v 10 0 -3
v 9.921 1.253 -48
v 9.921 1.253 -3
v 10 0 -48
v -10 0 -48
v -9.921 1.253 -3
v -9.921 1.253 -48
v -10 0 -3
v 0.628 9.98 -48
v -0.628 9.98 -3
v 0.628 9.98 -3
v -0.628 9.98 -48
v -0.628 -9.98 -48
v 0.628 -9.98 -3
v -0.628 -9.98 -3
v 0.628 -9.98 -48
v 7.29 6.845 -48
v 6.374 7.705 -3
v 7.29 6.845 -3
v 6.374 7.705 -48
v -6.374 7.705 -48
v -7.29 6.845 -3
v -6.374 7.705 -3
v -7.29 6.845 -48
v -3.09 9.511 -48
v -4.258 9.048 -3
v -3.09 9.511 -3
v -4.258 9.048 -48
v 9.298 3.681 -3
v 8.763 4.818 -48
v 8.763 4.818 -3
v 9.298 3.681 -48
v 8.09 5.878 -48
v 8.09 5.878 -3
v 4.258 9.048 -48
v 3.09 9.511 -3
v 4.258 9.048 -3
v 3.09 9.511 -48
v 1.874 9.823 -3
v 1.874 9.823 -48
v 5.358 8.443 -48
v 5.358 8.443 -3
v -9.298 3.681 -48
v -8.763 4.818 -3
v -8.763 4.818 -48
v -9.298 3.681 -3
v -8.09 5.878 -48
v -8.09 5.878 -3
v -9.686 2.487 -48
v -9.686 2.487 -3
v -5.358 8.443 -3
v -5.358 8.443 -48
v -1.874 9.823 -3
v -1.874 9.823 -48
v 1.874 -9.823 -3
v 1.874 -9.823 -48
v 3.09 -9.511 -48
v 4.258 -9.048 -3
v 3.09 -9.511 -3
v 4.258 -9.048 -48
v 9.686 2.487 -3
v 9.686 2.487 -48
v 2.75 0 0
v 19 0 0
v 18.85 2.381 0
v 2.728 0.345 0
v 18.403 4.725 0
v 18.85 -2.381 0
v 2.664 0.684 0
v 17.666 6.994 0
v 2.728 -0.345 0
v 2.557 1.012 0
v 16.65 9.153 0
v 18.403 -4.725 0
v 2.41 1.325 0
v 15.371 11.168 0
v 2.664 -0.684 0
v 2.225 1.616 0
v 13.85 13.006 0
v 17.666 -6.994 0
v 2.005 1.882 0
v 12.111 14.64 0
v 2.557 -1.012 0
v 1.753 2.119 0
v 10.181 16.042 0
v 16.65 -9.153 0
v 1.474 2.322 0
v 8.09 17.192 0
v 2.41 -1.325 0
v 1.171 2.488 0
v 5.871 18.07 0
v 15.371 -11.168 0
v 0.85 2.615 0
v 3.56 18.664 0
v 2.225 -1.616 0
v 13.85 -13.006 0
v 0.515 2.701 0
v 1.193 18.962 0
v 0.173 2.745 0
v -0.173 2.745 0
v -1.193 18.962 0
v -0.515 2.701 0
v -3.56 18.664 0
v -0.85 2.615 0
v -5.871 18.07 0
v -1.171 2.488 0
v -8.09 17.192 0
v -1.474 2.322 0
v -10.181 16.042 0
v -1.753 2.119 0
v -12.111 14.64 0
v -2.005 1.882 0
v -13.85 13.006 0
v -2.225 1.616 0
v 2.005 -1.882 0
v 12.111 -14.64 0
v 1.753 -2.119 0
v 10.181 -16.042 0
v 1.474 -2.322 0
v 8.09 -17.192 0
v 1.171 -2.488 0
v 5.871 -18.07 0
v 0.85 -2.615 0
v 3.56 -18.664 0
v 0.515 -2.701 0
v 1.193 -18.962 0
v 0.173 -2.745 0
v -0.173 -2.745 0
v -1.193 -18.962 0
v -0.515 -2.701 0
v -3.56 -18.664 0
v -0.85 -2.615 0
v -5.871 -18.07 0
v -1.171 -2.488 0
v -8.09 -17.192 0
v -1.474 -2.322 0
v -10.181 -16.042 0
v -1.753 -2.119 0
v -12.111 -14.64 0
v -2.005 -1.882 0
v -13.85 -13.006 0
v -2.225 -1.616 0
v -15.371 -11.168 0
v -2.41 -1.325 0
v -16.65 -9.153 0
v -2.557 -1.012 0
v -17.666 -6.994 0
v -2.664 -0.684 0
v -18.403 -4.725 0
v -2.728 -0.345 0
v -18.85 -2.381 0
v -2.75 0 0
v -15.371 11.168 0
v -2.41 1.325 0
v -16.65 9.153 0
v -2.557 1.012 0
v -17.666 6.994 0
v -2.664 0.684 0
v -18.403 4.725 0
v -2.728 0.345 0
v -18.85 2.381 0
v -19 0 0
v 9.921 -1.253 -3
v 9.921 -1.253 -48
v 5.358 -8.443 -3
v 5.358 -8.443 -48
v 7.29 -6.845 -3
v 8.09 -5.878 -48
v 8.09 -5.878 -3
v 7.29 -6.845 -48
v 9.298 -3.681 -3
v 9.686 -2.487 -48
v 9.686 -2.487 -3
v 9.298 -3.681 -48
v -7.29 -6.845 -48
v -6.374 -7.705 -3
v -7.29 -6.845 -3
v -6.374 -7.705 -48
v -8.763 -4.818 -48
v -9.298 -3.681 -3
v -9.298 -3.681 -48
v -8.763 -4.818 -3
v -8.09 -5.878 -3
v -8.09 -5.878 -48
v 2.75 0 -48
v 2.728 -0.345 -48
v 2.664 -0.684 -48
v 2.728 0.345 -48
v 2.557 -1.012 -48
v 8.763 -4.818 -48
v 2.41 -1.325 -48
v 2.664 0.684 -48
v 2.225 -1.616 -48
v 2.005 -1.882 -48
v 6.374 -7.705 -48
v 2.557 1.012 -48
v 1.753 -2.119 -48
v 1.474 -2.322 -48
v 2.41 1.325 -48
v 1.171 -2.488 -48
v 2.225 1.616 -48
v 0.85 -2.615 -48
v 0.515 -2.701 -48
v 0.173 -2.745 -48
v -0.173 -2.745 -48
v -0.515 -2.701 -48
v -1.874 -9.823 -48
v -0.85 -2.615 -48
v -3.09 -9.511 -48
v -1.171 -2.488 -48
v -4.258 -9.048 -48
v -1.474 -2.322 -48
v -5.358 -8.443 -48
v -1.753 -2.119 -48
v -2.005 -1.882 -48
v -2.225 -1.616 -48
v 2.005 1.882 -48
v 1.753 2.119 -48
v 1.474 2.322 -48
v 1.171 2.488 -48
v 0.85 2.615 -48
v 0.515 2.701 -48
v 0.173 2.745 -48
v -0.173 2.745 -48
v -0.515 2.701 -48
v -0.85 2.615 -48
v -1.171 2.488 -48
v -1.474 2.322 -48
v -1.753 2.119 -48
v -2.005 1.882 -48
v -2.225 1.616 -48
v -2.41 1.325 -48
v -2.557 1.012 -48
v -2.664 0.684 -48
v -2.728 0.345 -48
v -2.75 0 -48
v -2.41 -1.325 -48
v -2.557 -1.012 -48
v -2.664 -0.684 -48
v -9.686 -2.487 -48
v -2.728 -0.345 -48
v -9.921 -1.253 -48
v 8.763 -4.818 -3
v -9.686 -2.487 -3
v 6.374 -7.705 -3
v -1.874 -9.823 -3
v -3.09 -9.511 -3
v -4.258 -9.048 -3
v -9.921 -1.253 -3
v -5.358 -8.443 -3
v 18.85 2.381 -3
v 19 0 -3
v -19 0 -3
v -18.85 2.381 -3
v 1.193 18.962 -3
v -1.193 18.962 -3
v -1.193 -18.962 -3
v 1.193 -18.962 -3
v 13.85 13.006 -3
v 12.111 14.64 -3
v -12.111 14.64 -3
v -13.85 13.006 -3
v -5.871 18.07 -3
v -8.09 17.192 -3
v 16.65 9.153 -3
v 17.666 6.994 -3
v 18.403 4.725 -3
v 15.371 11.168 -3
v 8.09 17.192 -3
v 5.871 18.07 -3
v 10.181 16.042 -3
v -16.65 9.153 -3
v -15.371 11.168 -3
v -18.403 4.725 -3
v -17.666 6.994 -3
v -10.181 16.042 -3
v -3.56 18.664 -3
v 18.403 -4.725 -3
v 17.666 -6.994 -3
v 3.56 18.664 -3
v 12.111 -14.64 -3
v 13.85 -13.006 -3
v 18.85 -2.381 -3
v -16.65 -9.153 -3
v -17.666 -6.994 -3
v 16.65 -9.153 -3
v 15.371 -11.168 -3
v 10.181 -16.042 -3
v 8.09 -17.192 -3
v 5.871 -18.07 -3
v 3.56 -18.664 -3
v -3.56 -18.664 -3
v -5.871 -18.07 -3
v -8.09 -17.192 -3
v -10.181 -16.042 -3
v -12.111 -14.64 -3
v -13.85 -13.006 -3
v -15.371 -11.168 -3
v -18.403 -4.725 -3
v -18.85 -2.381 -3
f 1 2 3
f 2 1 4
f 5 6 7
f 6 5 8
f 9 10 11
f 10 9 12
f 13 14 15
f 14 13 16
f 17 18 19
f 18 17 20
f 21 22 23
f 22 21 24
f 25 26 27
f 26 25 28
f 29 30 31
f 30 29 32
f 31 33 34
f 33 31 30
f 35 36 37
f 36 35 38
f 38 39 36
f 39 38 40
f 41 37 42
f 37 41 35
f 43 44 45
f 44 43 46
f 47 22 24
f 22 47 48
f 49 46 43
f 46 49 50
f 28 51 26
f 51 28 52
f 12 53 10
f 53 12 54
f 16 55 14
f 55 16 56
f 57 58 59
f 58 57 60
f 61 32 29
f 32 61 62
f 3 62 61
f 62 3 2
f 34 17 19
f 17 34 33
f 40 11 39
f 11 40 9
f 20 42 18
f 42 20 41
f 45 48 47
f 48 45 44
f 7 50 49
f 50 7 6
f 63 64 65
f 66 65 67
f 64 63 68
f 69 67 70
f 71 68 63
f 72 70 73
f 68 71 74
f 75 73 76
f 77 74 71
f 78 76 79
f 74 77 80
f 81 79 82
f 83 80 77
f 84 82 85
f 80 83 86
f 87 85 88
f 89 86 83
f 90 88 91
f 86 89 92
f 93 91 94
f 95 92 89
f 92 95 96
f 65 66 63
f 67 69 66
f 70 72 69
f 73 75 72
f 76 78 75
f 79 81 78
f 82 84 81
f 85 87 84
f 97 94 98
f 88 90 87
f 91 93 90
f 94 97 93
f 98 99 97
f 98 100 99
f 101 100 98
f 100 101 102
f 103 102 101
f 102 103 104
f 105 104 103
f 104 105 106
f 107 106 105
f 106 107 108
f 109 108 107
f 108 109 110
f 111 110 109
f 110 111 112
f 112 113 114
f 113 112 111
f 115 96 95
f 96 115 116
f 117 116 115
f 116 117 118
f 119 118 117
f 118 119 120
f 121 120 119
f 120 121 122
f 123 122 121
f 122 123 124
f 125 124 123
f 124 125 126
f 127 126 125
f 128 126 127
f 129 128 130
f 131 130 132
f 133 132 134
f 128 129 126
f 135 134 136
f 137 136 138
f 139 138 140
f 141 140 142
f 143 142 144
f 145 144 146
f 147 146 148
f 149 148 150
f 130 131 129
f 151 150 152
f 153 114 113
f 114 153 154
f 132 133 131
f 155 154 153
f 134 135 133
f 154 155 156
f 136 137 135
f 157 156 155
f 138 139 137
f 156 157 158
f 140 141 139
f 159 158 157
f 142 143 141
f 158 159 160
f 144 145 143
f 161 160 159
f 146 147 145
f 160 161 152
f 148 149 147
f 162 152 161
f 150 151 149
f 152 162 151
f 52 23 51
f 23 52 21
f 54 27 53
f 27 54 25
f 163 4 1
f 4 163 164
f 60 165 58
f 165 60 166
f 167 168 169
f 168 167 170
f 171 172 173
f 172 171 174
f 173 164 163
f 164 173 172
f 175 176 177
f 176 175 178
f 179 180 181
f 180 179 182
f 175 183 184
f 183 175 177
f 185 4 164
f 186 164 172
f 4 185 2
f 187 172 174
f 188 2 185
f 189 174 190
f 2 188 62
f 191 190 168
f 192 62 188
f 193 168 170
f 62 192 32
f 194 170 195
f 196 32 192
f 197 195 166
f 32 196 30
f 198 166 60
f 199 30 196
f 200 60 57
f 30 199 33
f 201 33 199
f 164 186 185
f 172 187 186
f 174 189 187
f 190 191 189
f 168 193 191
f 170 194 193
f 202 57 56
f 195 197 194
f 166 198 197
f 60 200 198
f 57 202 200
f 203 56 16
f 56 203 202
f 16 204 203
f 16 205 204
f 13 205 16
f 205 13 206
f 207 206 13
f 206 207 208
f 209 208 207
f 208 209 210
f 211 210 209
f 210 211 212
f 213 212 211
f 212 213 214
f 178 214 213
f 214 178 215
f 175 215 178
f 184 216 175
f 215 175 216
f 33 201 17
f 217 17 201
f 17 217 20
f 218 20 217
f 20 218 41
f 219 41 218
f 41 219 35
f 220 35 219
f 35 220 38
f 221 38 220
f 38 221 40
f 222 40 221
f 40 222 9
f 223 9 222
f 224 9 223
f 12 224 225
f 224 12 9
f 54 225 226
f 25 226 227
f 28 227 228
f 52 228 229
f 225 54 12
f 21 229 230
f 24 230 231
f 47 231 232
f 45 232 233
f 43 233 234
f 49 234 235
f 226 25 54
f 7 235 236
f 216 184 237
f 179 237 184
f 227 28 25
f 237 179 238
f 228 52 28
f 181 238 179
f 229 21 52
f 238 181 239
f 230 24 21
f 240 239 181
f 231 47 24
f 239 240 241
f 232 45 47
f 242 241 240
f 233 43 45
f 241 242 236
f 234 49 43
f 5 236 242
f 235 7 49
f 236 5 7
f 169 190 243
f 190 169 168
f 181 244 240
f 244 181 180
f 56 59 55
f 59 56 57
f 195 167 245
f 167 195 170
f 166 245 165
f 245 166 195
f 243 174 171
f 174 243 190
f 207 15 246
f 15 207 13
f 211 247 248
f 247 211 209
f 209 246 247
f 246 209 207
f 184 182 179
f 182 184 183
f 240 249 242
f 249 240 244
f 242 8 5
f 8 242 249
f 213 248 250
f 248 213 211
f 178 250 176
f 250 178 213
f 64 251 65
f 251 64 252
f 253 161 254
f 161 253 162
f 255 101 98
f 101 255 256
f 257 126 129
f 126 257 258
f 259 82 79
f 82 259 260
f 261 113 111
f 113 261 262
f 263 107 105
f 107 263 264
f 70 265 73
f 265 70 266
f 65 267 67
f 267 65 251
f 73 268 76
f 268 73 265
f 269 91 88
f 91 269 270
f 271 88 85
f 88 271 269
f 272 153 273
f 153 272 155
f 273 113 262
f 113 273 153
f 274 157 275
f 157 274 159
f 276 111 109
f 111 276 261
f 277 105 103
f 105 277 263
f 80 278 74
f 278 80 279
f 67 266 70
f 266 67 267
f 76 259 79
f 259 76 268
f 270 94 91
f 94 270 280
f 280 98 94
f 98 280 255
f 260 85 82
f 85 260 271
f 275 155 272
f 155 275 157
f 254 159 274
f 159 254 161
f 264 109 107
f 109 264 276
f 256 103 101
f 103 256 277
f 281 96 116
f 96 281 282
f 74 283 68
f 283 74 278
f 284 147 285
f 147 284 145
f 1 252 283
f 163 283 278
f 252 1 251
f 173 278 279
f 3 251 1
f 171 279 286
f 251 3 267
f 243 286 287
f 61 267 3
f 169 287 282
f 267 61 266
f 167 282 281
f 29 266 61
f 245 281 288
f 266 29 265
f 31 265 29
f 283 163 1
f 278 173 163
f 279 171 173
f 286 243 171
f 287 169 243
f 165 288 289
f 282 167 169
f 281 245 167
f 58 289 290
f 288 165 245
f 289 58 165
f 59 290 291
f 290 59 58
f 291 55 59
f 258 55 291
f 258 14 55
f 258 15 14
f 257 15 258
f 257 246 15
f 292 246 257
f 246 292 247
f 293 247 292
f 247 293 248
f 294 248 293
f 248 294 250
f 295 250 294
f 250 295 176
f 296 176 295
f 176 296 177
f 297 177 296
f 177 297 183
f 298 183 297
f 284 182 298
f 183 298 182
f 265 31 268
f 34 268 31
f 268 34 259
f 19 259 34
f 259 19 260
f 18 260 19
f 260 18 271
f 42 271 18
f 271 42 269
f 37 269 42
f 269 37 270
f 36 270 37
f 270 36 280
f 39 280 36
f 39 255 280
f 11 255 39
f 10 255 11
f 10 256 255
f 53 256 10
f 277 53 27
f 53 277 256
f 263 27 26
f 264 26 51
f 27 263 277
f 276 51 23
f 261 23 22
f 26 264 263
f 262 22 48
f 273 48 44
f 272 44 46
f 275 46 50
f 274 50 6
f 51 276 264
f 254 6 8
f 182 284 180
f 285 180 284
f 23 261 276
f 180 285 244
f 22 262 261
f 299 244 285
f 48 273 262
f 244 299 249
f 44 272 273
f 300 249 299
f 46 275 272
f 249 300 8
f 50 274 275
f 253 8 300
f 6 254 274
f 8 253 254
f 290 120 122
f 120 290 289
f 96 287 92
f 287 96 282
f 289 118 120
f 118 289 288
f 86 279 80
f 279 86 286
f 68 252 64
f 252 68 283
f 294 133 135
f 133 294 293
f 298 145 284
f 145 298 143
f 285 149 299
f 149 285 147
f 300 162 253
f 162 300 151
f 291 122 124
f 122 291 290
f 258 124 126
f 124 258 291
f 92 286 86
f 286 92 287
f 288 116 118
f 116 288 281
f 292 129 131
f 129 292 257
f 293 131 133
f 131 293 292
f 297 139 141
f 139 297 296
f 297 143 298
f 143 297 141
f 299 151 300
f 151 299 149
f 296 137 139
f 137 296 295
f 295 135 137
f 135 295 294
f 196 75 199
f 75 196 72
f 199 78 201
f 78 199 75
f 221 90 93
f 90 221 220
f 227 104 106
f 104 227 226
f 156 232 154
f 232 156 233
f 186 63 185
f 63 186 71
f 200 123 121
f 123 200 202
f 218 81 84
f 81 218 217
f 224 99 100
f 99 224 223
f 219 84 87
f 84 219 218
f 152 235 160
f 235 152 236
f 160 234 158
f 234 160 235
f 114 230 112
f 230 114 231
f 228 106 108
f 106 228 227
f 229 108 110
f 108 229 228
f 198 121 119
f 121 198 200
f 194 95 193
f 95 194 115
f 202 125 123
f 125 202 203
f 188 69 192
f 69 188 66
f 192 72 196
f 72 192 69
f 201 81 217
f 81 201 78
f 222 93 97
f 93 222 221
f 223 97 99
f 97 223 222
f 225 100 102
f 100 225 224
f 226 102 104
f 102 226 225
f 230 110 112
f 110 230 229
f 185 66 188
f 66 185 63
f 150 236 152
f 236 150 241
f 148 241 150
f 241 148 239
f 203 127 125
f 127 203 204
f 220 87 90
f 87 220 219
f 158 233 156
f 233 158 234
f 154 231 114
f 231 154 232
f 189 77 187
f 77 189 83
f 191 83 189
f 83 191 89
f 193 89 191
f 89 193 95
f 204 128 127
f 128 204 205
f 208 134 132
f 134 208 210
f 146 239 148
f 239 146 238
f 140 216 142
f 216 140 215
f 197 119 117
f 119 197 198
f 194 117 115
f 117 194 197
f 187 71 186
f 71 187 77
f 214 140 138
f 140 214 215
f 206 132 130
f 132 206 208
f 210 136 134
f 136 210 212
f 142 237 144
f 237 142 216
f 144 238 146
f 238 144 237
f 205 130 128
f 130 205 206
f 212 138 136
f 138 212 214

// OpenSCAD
$fn = 50;


difference() {
	union() {
		translate(v = [0, 0, -48.0000000000]) {
			cylinder(h = 48, r = 10.0000000000);
		}
		translate(v = [0, 0, -3.0000000000]) {
			cylinder(h = 3, r = 19.0000000000);
		}
	}
	union() {
		#translate(v = [0, 0, -48]) {
			cylinder(h = 48, r = 2.7500000000);
		}
	}
}
